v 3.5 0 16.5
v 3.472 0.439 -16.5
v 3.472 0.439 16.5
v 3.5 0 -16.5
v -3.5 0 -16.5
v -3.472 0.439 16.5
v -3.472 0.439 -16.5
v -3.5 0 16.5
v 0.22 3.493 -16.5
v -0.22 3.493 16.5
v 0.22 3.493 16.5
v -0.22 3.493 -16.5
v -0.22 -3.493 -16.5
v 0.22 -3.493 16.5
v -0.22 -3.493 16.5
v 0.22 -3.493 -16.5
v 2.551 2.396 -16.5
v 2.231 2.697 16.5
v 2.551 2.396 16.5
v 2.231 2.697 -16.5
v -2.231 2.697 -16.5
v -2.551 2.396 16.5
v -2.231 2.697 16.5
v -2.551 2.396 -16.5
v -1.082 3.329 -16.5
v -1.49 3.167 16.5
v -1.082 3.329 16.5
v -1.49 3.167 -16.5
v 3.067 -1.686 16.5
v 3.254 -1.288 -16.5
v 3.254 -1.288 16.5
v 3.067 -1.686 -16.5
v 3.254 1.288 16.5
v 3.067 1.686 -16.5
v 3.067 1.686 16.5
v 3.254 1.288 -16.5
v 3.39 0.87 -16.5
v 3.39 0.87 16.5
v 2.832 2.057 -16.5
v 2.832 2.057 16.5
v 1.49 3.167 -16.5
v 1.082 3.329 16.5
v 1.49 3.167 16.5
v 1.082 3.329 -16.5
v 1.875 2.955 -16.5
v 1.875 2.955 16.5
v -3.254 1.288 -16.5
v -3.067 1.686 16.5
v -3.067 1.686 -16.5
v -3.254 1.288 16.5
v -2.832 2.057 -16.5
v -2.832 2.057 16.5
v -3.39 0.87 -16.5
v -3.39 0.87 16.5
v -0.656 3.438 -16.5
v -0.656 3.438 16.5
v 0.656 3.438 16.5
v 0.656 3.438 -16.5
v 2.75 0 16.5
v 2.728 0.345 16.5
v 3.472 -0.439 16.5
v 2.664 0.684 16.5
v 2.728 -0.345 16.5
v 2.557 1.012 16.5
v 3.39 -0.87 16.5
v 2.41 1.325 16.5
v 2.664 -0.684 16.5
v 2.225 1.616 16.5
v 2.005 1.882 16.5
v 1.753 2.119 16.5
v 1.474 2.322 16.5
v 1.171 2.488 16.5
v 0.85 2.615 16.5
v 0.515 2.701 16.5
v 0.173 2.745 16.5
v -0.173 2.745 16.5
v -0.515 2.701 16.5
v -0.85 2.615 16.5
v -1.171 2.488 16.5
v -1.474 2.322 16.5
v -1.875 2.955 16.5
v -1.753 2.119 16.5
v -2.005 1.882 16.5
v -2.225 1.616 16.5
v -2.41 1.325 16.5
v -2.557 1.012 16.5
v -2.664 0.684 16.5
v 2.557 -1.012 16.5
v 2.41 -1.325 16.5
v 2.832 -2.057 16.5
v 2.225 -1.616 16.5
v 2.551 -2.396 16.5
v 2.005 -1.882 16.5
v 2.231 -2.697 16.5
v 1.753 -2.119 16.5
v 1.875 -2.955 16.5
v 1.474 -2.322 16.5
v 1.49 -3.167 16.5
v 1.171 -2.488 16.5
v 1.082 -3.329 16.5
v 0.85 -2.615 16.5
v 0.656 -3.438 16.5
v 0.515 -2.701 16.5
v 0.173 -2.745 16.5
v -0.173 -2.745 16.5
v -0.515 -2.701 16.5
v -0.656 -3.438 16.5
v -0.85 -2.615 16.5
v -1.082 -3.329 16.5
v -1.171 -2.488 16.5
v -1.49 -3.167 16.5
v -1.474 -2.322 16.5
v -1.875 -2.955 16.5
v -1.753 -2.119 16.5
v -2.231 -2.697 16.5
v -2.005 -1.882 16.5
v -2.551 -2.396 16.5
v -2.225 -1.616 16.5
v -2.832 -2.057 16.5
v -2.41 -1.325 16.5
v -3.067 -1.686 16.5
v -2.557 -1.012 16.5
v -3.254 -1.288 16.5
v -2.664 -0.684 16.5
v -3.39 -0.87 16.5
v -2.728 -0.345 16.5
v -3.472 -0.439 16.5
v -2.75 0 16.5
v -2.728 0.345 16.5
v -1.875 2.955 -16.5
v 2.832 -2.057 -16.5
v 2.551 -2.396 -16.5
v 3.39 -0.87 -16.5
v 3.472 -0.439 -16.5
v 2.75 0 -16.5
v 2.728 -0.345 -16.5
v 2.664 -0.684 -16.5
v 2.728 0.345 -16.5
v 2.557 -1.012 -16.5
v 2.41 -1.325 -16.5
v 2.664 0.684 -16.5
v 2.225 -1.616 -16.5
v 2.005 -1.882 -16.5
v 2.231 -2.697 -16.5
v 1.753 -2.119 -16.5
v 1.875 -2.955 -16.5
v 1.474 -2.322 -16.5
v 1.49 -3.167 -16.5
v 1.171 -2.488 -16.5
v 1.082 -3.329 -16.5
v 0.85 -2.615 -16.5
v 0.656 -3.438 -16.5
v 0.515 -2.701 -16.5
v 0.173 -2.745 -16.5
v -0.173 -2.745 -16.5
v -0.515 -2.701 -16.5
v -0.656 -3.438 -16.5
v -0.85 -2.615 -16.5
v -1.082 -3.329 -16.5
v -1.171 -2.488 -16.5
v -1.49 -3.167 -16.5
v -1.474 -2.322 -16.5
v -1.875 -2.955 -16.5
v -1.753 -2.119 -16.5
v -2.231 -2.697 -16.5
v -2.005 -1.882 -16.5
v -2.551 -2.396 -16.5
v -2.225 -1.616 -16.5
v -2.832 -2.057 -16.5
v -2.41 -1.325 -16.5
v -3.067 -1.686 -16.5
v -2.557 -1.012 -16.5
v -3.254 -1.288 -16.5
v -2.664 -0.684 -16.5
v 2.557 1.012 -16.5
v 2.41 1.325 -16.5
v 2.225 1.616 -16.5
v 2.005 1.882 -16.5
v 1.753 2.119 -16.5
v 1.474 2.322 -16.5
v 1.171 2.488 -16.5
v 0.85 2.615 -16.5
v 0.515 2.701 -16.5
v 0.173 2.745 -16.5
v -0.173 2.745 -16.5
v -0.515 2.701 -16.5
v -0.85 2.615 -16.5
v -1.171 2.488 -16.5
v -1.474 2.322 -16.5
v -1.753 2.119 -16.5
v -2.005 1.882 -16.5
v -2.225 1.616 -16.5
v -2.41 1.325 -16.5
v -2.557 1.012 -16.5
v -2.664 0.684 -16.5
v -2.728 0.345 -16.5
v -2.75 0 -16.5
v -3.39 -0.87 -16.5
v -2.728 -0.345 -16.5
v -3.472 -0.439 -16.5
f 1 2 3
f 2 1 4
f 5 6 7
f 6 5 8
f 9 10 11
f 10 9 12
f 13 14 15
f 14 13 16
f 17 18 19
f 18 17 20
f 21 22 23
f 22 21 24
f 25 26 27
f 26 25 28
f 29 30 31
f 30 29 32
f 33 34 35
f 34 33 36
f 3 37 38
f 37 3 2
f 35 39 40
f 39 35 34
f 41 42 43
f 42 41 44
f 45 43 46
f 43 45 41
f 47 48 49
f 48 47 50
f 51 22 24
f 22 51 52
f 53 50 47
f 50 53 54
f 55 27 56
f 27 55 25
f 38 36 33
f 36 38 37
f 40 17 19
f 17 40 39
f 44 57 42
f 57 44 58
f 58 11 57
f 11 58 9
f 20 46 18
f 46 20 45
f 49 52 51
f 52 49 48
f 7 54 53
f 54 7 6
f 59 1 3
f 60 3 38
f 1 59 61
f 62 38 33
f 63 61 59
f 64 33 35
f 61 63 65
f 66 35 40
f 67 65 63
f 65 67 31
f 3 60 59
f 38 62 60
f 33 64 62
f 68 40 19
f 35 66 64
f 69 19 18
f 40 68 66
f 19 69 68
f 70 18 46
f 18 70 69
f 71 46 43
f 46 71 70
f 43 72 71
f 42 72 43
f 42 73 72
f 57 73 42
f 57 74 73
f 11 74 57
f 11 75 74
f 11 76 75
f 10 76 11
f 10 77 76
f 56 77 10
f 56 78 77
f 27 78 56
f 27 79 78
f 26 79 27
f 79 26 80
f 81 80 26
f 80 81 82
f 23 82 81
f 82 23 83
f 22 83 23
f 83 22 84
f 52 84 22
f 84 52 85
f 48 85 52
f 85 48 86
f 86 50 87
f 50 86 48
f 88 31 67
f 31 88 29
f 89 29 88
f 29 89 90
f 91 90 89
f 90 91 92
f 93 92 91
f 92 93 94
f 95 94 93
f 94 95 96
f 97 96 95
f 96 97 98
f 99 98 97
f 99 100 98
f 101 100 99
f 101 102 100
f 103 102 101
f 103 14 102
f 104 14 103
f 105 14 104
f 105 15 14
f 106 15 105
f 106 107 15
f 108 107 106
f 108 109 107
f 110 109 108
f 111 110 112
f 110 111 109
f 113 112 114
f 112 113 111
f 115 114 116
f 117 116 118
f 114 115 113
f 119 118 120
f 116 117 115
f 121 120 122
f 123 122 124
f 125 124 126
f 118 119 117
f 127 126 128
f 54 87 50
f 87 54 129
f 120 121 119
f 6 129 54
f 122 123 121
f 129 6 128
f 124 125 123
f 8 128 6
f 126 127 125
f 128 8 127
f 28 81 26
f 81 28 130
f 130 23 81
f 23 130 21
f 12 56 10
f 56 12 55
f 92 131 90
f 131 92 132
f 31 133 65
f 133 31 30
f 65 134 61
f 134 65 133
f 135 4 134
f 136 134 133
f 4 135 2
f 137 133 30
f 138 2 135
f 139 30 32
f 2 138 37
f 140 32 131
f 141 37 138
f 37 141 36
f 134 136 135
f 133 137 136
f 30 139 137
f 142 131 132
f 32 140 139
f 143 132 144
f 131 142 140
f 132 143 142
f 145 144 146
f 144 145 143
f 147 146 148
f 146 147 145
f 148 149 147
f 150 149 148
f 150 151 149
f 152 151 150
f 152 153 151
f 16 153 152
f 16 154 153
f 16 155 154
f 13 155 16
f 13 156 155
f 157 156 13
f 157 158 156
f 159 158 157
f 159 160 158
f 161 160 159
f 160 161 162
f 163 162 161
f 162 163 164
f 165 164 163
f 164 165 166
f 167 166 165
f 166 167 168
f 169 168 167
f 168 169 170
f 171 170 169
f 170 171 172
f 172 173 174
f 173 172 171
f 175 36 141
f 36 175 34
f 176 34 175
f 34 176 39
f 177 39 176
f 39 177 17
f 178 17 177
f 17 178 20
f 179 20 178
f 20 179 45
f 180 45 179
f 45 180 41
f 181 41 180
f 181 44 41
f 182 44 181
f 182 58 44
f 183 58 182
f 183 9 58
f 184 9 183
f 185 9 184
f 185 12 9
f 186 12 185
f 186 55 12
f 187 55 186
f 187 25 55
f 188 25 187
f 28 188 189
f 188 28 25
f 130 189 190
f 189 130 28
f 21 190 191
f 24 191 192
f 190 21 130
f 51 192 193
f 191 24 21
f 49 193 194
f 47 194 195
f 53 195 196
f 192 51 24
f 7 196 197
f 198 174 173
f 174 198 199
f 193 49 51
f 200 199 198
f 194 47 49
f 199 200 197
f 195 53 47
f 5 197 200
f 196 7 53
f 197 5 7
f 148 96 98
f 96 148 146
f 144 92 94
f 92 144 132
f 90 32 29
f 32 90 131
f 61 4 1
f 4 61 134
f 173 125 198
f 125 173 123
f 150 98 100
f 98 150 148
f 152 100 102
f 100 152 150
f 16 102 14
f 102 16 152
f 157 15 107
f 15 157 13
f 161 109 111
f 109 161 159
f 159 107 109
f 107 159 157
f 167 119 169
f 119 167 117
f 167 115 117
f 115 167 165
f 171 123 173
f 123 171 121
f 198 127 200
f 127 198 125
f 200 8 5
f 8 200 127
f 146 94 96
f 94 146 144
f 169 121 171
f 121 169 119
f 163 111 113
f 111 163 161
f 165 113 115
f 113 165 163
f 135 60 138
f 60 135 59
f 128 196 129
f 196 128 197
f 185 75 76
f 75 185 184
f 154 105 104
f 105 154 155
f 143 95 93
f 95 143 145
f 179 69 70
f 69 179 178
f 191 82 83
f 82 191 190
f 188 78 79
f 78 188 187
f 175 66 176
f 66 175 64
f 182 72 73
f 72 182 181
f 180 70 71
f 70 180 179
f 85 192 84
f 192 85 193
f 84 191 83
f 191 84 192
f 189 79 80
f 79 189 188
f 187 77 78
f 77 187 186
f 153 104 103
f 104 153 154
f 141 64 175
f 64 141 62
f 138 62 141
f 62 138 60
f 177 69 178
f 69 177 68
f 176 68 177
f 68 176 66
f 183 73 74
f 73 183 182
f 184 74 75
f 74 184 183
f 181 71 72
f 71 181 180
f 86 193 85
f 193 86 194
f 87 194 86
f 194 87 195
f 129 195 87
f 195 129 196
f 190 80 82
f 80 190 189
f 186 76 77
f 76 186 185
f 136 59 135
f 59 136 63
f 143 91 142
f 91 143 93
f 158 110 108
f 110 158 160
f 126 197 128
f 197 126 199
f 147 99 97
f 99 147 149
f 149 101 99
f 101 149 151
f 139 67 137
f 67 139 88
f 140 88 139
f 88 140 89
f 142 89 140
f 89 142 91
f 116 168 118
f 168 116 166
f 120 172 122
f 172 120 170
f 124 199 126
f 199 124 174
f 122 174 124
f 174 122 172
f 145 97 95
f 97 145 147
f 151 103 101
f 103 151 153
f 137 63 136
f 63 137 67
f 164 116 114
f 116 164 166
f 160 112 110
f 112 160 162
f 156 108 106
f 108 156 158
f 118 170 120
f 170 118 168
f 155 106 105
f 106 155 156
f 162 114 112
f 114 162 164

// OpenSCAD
$fn = 50;


difference() {
	union() {
		translate(v = [0, 0, -16.5000000000]) {
			cylinder(h = 33, r = 3.5000000000);
		}
	}
	union() {
		translate(v = [0, 0, -100.0000000000]) {
			cylinder(h = 200, r = 2.7500000000);
		}
	}
}
